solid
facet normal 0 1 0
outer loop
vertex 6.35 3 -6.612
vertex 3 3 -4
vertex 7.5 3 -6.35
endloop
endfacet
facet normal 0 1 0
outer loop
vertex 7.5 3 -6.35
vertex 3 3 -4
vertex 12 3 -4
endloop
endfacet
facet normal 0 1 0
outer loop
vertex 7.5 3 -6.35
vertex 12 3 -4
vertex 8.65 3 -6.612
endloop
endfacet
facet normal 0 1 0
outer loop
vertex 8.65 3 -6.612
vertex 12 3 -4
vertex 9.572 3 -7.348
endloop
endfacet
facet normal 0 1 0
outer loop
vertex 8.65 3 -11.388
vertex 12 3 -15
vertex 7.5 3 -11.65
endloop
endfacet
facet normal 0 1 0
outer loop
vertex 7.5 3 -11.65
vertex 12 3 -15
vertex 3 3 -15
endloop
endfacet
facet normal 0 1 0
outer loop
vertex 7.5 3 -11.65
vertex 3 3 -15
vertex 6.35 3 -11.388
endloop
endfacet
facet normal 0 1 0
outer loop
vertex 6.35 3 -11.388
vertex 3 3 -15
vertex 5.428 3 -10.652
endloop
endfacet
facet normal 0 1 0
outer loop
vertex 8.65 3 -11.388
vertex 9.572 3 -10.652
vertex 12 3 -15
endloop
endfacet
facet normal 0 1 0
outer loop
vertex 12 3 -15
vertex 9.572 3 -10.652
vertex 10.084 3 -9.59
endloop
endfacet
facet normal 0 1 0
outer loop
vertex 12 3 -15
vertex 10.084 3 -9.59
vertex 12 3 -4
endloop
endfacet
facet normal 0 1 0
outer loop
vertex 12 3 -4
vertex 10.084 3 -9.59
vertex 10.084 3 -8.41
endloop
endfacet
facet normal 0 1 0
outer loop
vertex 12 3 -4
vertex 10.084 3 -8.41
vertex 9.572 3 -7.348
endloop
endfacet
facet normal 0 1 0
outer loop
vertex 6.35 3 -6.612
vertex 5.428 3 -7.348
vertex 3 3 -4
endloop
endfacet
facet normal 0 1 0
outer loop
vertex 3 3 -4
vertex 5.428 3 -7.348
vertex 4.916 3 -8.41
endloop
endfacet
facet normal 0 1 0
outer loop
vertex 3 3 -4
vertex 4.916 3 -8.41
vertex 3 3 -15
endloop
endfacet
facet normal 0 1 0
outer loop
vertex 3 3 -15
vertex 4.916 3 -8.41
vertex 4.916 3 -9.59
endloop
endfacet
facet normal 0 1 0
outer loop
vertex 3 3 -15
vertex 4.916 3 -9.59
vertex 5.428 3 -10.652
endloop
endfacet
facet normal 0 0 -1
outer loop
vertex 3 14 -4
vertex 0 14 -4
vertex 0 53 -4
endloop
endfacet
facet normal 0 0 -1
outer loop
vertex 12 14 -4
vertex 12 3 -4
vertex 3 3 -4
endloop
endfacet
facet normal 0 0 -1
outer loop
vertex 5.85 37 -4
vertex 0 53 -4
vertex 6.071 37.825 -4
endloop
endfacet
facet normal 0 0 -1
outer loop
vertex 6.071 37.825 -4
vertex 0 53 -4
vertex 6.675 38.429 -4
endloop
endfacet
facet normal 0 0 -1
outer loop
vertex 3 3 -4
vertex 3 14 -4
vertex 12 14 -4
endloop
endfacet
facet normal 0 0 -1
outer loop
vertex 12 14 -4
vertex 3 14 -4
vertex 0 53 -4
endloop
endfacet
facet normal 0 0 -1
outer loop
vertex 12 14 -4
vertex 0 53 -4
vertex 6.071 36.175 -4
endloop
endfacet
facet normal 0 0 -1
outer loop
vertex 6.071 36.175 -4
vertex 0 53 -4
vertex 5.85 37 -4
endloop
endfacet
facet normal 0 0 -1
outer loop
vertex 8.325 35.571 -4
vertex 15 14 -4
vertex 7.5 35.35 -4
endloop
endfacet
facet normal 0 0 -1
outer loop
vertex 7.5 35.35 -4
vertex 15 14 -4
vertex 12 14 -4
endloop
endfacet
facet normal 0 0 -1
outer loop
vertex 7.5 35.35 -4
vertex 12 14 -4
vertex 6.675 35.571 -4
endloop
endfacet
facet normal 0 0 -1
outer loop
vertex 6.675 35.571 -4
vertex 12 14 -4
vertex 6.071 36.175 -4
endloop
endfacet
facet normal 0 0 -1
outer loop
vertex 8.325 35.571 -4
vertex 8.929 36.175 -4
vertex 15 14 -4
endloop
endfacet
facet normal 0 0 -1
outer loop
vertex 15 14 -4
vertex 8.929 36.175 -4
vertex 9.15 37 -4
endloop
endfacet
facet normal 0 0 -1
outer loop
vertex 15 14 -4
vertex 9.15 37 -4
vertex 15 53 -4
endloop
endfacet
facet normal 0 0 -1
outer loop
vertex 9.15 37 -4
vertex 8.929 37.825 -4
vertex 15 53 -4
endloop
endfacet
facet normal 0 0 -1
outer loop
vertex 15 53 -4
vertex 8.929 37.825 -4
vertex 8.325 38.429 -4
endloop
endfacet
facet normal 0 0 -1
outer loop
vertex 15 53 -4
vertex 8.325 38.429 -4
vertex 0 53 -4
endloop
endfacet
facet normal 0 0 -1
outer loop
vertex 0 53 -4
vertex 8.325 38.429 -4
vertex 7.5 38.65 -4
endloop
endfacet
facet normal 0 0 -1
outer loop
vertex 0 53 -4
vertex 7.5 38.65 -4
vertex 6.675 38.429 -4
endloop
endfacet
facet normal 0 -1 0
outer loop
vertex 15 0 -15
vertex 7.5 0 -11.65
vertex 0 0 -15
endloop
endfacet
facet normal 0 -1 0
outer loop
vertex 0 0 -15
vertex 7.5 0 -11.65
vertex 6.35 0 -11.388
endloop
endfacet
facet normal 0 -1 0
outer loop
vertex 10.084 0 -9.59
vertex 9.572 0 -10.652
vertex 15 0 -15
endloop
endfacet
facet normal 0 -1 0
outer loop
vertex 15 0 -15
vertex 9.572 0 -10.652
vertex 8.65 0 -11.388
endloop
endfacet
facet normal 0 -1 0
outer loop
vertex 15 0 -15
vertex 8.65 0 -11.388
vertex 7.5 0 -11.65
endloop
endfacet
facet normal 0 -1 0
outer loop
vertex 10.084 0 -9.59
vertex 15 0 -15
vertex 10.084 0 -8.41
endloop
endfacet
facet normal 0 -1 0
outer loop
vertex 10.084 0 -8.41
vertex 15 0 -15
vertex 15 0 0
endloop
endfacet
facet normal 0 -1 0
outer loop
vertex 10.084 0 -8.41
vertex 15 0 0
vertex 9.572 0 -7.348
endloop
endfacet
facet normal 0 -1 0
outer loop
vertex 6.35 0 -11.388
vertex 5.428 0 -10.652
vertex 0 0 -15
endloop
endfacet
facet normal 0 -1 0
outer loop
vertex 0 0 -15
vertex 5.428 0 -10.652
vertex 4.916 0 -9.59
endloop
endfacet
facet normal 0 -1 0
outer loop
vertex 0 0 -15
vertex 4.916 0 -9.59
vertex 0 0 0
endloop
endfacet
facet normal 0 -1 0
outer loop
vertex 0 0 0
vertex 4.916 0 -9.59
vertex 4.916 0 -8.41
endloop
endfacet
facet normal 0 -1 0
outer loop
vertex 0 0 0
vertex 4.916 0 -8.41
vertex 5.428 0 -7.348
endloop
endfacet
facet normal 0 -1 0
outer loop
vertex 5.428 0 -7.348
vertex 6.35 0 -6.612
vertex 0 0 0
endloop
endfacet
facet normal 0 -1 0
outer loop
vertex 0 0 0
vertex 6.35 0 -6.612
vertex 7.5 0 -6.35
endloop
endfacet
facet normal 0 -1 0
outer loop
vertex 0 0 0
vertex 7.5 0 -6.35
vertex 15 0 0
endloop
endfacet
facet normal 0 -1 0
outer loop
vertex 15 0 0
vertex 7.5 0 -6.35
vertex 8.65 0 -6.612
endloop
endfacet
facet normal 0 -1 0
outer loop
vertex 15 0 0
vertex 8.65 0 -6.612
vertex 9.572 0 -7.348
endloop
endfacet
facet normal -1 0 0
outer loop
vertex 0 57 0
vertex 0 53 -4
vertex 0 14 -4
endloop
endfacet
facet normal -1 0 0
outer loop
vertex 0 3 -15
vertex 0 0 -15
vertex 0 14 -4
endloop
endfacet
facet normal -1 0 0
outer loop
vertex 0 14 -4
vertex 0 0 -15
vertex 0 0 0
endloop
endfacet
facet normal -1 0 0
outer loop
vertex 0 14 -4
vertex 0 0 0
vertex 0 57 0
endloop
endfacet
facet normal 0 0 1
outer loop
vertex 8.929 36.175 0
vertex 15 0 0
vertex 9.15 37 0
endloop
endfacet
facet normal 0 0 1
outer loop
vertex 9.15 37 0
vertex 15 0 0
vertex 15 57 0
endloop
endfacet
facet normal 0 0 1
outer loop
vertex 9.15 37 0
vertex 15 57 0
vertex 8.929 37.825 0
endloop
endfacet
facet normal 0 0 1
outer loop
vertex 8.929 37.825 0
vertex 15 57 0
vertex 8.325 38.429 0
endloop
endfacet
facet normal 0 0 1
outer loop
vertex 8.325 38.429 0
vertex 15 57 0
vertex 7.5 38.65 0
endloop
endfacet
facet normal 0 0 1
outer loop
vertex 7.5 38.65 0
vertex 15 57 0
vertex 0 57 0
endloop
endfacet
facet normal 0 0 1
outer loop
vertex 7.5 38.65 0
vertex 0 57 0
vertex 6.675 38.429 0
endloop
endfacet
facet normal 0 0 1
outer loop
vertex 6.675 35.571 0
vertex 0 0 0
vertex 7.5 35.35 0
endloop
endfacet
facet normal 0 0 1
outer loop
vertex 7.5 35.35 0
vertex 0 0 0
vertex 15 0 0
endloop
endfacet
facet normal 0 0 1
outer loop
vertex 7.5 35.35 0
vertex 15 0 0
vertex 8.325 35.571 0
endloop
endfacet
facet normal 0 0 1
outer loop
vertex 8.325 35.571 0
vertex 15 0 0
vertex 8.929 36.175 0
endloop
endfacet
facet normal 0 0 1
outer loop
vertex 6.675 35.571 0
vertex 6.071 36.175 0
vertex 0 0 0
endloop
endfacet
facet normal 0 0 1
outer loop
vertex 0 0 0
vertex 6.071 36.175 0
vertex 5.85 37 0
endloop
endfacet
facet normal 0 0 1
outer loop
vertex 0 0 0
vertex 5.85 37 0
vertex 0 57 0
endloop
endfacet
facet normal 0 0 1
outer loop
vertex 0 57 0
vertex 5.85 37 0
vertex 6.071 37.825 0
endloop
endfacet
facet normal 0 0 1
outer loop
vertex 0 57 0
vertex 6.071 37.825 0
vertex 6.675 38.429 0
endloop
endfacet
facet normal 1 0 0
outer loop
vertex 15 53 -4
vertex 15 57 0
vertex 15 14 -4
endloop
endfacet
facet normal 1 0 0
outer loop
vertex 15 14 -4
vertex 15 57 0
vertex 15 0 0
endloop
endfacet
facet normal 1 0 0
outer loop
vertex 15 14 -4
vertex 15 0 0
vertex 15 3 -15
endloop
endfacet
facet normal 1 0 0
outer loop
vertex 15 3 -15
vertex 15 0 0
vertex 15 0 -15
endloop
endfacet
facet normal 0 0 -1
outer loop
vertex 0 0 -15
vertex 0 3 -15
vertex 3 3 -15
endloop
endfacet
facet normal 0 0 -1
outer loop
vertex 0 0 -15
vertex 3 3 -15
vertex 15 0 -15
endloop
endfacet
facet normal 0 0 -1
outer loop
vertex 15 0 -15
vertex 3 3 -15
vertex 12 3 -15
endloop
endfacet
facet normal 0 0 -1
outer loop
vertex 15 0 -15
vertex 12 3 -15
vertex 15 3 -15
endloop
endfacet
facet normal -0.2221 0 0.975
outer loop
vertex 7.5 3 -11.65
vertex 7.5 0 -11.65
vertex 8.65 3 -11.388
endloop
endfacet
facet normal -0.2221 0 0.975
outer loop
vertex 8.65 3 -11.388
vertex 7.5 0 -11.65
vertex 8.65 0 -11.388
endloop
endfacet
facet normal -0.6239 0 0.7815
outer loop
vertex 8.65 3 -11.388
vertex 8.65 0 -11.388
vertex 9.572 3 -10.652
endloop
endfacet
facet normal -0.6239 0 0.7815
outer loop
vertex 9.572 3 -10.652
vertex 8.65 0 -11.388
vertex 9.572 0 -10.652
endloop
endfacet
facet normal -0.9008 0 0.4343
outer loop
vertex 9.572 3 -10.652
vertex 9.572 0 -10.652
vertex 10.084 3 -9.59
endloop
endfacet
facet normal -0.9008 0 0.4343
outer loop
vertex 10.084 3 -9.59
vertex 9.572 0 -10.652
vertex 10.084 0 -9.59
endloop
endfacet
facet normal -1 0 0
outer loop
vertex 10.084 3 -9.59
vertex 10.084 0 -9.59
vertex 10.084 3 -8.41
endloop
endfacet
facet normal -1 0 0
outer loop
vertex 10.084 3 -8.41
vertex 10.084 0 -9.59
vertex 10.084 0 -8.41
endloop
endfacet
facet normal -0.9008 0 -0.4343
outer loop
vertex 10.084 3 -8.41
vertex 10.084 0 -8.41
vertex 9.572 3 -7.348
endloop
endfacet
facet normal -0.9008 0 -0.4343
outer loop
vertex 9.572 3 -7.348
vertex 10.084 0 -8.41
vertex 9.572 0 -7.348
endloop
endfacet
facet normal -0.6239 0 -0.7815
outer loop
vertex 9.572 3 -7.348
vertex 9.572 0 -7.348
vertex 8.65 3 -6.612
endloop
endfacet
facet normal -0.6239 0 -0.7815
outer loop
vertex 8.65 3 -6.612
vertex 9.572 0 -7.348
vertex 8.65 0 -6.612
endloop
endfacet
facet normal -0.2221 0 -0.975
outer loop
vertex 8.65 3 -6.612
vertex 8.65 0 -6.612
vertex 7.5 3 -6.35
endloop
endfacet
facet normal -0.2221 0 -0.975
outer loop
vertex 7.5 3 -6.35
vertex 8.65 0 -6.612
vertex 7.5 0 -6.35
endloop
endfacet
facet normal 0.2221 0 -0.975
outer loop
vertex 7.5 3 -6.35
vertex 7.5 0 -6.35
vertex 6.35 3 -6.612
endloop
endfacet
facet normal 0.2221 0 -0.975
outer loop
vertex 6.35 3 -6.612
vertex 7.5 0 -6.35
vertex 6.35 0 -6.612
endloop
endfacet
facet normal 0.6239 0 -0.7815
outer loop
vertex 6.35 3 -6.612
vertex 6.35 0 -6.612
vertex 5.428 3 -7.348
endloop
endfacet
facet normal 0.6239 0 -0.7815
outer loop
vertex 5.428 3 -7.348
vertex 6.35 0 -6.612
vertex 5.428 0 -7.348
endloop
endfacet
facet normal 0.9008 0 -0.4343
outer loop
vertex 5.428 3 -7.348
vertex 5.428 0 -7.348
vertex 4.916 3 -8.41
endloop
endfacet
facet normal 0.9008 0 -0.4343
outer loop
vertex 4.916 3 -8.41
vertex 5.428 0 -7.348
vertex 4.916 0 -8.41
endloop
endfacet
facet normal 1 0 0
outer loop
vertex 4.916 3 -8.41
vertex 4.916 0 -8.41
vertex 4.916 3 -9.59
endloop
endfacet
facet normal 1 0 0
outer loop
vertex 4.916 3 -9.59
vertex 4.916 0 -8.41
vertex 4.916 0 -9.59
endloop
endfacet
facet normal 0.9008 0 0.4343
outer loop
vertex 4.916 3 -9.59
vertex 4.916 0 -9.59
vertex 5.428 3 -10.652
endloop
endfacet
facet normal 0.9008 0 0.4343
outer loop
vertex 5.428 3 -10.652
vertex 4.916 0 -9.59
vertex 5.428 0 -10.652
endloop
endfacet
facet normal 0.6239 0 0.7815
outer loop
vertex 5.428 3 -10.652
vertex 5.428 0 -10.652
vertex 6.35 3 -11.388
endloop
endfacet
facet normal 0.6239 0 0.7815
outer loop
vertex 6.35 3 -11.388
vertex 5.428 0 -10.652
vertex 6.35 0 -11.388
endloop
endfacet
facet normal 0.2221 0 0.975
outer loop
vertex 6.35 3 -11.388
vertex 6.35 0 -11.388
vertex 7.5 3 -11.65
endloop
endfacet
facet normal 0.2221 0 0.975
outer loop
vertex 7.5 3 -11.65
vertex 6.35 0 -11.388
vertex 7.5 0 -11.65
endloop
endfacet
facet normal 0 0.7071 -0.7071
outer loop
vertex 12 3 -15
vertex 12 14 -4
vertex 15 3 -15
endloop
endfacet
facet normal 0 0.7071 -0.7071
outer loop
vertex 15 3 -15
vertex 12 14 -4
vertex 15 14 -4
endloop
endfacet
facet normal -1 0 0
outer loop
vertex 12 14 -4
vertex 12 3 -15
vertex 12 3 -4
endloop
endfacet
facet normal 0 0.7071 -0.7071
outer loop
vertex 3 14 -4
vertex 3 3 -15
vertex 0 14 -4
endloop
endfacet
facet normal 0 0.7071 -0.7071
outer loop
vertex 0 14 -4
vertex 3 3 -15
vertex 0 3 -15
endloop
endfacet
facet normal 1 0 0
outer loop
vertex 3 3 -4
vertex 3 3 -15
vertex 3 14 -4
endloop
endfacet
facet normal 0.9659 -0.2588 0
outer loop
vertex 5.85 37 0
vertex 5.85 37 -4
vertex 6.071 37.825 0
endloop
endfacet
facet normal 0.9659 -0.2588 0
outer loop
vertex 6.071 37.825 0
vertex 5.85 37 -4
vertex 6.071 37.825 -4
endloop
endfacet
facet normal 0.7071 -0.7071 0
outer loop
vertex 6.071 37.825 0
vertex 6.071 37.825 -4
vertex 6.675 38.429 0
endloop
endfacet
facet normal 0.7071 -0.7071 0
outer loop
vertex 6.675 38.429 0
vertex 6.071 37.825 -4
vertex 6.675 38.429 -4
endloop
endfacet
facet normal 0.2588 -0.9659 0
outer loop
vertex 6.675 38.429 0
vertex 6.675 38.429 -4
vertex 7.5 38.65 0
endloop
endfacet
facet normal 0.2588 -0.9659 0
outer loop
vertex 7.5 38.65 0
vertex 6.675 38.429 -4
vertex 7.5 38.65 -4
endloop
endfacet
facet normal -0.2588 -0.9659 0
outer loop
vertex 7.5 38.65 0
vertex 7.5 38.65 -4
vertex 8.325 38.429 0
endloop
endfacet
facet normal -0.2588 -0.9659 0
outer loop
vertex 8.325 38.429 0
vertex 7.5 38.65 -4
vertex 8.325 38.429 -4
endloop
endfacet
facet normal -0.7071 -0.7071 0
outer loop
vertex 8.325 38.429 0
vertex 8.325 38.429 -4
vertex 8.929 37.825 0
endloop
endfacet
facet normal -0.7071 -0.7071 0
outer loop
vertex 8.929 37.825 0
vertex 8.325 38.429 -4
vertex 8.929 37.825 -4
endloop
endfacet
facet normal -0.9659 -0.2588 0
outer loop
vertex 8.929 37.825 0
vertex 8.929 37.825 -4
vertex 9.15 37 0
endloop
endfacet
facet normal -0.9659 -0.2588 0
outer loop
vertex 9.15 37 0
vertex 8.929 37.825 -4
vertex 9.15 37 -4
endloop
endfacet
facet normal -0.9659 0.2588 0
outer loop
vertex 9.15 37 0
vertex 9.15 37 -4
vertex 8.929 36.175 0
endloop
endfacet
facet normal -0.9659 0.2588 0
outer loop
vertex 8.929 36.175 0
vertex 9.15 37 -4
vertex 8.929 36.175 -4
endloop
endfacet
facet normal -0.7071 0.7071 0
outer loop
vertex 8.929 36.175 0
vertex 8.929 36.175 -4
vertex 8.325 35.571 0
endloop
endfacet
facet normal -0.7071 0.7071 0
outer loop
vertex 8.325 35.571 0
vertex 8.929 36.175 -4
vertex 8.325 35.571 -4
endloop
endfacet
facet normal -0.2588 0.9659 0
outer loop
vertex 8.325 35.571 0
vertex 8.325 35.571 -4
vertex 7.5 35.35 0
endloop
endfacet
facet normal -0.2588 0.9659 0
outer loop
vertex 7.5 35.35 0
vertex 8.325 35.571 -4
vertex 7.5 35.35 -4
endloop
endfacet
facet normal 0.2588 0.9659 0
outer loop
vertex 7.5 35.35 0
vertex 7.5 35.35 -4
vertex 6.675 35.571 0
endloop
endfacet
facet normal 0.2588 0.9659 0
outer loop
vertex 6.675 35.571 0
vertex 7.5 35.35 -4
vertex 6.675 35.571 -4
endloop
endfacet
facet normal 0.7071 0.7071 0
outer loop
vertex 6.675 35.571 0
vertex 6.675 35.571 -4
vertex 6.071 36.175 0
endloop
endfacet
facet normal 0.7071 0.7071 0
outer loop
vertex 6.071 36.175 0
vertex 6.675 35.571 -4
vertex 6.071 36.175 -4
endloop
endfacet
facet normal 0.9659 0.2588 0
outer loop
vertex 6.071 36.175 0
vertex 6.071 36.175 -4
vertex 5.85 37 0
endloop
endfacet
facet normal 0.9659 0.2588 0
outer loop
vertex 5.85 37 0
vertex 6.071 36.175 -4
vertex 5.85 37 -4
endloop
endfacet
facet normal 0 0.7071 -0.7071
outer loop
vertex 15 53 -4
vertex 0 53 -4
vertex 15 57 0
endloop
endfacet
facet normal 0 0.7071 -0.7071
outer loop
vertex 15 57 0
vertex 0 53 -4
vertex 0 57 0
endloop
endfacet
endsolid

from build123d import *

# Parameters (mm, degrees)
SKETCH1_W           = 15
SKETCH1_H           = 15
SKETCH1_R           = 2.65
BOSS_EXTRUDE1_DEPTH = 3
SKETCH2_W           = 15
SKETCH2_H           = 4
BOSS_EXTRUDE2_DEPTH = 54
BOSS_EXTRUDE3_DEPTH = 3
SKETCH4_R           = 1.65
CUT_EXTRUDE1_DEPTH  = 13
CUT_EXTRUDE2_DEPTH  = 20


with BuildPart() as part:
    # Sketch1 → Boss-Extrude1 (new body)
    with BuildSketch(Plane(origin=(0, 0, 0), x_dir=(1, 0, 0), z_dir=(0, 1, 0))):
        with Locations((7.5, 7.5)):
            Rectangle(SKETCH1_W, SKETCH1_H)
        with Locations(Location((7.5, 9, 0), (0, 0, 270))):
            Circle(SKETCH1_R, mode=Mode.SUBTRACT)
    extrude(amount=BOSS_EXTRUDE1_DEPTH)

    # Sketch2 → Boss-Extrude2 (add)
    with BuildSketch(Plane(origin=(0, 3, 0), x_dir=(1, 0, 0), z_dir=(0, 1, 0))):
        with Locations((7.5, 2)):
            Rectangle(SKETCH2_W, SKETCH2_H)
    extrude(amount=BOSS_EXTRUDE2_DEPTH)

    # Sketch3 → Boss-Extrude3 (add)
    with BuildSketch(Plane(origin=(15, 0, 0), x_dir=(0, 0, -1), z_dir=(1, 0, 0))):
        Polygon((4, 14), (15, 3), (4, 3), align=None)
    boss_extrude3 = extrude(amount=-BOSS_EXTRUDE3_DEPTH)

    # Mirror1: Boss-Extrude3 across plane
    add(boss_extrude3.mirror(Plane.ZY.offset(-7.5)))

    # Sketch4 → Cut-Extrude1 (cut)
    with BuildSketch(Plane(origin=(0, 0, -4), x_dir=(-1, 0, 0), z_dir=(0, 0, -1))):
        with Locations((-7.5, 37)):
            Circle(SKETCH4_R)
    extrude(amount=-CUT_EXTRUDE1_DEPTH, mode=Mode.SUBTRACT)

    # Sketch5 → Cut-Extrude2 (cut)
    with BuildSketch(Plane(origin=(15, 0, 0), x_dir=(0, 0, -1), z_dir=(1, 0, 0))):
        Polygon((0, 57), (4, 53), (4, 57), align=None)
    extrude(amount=-CUT_EXTRUDE2_DEPTH, mode=Mode.SUBTRACT)


solid = part.part
